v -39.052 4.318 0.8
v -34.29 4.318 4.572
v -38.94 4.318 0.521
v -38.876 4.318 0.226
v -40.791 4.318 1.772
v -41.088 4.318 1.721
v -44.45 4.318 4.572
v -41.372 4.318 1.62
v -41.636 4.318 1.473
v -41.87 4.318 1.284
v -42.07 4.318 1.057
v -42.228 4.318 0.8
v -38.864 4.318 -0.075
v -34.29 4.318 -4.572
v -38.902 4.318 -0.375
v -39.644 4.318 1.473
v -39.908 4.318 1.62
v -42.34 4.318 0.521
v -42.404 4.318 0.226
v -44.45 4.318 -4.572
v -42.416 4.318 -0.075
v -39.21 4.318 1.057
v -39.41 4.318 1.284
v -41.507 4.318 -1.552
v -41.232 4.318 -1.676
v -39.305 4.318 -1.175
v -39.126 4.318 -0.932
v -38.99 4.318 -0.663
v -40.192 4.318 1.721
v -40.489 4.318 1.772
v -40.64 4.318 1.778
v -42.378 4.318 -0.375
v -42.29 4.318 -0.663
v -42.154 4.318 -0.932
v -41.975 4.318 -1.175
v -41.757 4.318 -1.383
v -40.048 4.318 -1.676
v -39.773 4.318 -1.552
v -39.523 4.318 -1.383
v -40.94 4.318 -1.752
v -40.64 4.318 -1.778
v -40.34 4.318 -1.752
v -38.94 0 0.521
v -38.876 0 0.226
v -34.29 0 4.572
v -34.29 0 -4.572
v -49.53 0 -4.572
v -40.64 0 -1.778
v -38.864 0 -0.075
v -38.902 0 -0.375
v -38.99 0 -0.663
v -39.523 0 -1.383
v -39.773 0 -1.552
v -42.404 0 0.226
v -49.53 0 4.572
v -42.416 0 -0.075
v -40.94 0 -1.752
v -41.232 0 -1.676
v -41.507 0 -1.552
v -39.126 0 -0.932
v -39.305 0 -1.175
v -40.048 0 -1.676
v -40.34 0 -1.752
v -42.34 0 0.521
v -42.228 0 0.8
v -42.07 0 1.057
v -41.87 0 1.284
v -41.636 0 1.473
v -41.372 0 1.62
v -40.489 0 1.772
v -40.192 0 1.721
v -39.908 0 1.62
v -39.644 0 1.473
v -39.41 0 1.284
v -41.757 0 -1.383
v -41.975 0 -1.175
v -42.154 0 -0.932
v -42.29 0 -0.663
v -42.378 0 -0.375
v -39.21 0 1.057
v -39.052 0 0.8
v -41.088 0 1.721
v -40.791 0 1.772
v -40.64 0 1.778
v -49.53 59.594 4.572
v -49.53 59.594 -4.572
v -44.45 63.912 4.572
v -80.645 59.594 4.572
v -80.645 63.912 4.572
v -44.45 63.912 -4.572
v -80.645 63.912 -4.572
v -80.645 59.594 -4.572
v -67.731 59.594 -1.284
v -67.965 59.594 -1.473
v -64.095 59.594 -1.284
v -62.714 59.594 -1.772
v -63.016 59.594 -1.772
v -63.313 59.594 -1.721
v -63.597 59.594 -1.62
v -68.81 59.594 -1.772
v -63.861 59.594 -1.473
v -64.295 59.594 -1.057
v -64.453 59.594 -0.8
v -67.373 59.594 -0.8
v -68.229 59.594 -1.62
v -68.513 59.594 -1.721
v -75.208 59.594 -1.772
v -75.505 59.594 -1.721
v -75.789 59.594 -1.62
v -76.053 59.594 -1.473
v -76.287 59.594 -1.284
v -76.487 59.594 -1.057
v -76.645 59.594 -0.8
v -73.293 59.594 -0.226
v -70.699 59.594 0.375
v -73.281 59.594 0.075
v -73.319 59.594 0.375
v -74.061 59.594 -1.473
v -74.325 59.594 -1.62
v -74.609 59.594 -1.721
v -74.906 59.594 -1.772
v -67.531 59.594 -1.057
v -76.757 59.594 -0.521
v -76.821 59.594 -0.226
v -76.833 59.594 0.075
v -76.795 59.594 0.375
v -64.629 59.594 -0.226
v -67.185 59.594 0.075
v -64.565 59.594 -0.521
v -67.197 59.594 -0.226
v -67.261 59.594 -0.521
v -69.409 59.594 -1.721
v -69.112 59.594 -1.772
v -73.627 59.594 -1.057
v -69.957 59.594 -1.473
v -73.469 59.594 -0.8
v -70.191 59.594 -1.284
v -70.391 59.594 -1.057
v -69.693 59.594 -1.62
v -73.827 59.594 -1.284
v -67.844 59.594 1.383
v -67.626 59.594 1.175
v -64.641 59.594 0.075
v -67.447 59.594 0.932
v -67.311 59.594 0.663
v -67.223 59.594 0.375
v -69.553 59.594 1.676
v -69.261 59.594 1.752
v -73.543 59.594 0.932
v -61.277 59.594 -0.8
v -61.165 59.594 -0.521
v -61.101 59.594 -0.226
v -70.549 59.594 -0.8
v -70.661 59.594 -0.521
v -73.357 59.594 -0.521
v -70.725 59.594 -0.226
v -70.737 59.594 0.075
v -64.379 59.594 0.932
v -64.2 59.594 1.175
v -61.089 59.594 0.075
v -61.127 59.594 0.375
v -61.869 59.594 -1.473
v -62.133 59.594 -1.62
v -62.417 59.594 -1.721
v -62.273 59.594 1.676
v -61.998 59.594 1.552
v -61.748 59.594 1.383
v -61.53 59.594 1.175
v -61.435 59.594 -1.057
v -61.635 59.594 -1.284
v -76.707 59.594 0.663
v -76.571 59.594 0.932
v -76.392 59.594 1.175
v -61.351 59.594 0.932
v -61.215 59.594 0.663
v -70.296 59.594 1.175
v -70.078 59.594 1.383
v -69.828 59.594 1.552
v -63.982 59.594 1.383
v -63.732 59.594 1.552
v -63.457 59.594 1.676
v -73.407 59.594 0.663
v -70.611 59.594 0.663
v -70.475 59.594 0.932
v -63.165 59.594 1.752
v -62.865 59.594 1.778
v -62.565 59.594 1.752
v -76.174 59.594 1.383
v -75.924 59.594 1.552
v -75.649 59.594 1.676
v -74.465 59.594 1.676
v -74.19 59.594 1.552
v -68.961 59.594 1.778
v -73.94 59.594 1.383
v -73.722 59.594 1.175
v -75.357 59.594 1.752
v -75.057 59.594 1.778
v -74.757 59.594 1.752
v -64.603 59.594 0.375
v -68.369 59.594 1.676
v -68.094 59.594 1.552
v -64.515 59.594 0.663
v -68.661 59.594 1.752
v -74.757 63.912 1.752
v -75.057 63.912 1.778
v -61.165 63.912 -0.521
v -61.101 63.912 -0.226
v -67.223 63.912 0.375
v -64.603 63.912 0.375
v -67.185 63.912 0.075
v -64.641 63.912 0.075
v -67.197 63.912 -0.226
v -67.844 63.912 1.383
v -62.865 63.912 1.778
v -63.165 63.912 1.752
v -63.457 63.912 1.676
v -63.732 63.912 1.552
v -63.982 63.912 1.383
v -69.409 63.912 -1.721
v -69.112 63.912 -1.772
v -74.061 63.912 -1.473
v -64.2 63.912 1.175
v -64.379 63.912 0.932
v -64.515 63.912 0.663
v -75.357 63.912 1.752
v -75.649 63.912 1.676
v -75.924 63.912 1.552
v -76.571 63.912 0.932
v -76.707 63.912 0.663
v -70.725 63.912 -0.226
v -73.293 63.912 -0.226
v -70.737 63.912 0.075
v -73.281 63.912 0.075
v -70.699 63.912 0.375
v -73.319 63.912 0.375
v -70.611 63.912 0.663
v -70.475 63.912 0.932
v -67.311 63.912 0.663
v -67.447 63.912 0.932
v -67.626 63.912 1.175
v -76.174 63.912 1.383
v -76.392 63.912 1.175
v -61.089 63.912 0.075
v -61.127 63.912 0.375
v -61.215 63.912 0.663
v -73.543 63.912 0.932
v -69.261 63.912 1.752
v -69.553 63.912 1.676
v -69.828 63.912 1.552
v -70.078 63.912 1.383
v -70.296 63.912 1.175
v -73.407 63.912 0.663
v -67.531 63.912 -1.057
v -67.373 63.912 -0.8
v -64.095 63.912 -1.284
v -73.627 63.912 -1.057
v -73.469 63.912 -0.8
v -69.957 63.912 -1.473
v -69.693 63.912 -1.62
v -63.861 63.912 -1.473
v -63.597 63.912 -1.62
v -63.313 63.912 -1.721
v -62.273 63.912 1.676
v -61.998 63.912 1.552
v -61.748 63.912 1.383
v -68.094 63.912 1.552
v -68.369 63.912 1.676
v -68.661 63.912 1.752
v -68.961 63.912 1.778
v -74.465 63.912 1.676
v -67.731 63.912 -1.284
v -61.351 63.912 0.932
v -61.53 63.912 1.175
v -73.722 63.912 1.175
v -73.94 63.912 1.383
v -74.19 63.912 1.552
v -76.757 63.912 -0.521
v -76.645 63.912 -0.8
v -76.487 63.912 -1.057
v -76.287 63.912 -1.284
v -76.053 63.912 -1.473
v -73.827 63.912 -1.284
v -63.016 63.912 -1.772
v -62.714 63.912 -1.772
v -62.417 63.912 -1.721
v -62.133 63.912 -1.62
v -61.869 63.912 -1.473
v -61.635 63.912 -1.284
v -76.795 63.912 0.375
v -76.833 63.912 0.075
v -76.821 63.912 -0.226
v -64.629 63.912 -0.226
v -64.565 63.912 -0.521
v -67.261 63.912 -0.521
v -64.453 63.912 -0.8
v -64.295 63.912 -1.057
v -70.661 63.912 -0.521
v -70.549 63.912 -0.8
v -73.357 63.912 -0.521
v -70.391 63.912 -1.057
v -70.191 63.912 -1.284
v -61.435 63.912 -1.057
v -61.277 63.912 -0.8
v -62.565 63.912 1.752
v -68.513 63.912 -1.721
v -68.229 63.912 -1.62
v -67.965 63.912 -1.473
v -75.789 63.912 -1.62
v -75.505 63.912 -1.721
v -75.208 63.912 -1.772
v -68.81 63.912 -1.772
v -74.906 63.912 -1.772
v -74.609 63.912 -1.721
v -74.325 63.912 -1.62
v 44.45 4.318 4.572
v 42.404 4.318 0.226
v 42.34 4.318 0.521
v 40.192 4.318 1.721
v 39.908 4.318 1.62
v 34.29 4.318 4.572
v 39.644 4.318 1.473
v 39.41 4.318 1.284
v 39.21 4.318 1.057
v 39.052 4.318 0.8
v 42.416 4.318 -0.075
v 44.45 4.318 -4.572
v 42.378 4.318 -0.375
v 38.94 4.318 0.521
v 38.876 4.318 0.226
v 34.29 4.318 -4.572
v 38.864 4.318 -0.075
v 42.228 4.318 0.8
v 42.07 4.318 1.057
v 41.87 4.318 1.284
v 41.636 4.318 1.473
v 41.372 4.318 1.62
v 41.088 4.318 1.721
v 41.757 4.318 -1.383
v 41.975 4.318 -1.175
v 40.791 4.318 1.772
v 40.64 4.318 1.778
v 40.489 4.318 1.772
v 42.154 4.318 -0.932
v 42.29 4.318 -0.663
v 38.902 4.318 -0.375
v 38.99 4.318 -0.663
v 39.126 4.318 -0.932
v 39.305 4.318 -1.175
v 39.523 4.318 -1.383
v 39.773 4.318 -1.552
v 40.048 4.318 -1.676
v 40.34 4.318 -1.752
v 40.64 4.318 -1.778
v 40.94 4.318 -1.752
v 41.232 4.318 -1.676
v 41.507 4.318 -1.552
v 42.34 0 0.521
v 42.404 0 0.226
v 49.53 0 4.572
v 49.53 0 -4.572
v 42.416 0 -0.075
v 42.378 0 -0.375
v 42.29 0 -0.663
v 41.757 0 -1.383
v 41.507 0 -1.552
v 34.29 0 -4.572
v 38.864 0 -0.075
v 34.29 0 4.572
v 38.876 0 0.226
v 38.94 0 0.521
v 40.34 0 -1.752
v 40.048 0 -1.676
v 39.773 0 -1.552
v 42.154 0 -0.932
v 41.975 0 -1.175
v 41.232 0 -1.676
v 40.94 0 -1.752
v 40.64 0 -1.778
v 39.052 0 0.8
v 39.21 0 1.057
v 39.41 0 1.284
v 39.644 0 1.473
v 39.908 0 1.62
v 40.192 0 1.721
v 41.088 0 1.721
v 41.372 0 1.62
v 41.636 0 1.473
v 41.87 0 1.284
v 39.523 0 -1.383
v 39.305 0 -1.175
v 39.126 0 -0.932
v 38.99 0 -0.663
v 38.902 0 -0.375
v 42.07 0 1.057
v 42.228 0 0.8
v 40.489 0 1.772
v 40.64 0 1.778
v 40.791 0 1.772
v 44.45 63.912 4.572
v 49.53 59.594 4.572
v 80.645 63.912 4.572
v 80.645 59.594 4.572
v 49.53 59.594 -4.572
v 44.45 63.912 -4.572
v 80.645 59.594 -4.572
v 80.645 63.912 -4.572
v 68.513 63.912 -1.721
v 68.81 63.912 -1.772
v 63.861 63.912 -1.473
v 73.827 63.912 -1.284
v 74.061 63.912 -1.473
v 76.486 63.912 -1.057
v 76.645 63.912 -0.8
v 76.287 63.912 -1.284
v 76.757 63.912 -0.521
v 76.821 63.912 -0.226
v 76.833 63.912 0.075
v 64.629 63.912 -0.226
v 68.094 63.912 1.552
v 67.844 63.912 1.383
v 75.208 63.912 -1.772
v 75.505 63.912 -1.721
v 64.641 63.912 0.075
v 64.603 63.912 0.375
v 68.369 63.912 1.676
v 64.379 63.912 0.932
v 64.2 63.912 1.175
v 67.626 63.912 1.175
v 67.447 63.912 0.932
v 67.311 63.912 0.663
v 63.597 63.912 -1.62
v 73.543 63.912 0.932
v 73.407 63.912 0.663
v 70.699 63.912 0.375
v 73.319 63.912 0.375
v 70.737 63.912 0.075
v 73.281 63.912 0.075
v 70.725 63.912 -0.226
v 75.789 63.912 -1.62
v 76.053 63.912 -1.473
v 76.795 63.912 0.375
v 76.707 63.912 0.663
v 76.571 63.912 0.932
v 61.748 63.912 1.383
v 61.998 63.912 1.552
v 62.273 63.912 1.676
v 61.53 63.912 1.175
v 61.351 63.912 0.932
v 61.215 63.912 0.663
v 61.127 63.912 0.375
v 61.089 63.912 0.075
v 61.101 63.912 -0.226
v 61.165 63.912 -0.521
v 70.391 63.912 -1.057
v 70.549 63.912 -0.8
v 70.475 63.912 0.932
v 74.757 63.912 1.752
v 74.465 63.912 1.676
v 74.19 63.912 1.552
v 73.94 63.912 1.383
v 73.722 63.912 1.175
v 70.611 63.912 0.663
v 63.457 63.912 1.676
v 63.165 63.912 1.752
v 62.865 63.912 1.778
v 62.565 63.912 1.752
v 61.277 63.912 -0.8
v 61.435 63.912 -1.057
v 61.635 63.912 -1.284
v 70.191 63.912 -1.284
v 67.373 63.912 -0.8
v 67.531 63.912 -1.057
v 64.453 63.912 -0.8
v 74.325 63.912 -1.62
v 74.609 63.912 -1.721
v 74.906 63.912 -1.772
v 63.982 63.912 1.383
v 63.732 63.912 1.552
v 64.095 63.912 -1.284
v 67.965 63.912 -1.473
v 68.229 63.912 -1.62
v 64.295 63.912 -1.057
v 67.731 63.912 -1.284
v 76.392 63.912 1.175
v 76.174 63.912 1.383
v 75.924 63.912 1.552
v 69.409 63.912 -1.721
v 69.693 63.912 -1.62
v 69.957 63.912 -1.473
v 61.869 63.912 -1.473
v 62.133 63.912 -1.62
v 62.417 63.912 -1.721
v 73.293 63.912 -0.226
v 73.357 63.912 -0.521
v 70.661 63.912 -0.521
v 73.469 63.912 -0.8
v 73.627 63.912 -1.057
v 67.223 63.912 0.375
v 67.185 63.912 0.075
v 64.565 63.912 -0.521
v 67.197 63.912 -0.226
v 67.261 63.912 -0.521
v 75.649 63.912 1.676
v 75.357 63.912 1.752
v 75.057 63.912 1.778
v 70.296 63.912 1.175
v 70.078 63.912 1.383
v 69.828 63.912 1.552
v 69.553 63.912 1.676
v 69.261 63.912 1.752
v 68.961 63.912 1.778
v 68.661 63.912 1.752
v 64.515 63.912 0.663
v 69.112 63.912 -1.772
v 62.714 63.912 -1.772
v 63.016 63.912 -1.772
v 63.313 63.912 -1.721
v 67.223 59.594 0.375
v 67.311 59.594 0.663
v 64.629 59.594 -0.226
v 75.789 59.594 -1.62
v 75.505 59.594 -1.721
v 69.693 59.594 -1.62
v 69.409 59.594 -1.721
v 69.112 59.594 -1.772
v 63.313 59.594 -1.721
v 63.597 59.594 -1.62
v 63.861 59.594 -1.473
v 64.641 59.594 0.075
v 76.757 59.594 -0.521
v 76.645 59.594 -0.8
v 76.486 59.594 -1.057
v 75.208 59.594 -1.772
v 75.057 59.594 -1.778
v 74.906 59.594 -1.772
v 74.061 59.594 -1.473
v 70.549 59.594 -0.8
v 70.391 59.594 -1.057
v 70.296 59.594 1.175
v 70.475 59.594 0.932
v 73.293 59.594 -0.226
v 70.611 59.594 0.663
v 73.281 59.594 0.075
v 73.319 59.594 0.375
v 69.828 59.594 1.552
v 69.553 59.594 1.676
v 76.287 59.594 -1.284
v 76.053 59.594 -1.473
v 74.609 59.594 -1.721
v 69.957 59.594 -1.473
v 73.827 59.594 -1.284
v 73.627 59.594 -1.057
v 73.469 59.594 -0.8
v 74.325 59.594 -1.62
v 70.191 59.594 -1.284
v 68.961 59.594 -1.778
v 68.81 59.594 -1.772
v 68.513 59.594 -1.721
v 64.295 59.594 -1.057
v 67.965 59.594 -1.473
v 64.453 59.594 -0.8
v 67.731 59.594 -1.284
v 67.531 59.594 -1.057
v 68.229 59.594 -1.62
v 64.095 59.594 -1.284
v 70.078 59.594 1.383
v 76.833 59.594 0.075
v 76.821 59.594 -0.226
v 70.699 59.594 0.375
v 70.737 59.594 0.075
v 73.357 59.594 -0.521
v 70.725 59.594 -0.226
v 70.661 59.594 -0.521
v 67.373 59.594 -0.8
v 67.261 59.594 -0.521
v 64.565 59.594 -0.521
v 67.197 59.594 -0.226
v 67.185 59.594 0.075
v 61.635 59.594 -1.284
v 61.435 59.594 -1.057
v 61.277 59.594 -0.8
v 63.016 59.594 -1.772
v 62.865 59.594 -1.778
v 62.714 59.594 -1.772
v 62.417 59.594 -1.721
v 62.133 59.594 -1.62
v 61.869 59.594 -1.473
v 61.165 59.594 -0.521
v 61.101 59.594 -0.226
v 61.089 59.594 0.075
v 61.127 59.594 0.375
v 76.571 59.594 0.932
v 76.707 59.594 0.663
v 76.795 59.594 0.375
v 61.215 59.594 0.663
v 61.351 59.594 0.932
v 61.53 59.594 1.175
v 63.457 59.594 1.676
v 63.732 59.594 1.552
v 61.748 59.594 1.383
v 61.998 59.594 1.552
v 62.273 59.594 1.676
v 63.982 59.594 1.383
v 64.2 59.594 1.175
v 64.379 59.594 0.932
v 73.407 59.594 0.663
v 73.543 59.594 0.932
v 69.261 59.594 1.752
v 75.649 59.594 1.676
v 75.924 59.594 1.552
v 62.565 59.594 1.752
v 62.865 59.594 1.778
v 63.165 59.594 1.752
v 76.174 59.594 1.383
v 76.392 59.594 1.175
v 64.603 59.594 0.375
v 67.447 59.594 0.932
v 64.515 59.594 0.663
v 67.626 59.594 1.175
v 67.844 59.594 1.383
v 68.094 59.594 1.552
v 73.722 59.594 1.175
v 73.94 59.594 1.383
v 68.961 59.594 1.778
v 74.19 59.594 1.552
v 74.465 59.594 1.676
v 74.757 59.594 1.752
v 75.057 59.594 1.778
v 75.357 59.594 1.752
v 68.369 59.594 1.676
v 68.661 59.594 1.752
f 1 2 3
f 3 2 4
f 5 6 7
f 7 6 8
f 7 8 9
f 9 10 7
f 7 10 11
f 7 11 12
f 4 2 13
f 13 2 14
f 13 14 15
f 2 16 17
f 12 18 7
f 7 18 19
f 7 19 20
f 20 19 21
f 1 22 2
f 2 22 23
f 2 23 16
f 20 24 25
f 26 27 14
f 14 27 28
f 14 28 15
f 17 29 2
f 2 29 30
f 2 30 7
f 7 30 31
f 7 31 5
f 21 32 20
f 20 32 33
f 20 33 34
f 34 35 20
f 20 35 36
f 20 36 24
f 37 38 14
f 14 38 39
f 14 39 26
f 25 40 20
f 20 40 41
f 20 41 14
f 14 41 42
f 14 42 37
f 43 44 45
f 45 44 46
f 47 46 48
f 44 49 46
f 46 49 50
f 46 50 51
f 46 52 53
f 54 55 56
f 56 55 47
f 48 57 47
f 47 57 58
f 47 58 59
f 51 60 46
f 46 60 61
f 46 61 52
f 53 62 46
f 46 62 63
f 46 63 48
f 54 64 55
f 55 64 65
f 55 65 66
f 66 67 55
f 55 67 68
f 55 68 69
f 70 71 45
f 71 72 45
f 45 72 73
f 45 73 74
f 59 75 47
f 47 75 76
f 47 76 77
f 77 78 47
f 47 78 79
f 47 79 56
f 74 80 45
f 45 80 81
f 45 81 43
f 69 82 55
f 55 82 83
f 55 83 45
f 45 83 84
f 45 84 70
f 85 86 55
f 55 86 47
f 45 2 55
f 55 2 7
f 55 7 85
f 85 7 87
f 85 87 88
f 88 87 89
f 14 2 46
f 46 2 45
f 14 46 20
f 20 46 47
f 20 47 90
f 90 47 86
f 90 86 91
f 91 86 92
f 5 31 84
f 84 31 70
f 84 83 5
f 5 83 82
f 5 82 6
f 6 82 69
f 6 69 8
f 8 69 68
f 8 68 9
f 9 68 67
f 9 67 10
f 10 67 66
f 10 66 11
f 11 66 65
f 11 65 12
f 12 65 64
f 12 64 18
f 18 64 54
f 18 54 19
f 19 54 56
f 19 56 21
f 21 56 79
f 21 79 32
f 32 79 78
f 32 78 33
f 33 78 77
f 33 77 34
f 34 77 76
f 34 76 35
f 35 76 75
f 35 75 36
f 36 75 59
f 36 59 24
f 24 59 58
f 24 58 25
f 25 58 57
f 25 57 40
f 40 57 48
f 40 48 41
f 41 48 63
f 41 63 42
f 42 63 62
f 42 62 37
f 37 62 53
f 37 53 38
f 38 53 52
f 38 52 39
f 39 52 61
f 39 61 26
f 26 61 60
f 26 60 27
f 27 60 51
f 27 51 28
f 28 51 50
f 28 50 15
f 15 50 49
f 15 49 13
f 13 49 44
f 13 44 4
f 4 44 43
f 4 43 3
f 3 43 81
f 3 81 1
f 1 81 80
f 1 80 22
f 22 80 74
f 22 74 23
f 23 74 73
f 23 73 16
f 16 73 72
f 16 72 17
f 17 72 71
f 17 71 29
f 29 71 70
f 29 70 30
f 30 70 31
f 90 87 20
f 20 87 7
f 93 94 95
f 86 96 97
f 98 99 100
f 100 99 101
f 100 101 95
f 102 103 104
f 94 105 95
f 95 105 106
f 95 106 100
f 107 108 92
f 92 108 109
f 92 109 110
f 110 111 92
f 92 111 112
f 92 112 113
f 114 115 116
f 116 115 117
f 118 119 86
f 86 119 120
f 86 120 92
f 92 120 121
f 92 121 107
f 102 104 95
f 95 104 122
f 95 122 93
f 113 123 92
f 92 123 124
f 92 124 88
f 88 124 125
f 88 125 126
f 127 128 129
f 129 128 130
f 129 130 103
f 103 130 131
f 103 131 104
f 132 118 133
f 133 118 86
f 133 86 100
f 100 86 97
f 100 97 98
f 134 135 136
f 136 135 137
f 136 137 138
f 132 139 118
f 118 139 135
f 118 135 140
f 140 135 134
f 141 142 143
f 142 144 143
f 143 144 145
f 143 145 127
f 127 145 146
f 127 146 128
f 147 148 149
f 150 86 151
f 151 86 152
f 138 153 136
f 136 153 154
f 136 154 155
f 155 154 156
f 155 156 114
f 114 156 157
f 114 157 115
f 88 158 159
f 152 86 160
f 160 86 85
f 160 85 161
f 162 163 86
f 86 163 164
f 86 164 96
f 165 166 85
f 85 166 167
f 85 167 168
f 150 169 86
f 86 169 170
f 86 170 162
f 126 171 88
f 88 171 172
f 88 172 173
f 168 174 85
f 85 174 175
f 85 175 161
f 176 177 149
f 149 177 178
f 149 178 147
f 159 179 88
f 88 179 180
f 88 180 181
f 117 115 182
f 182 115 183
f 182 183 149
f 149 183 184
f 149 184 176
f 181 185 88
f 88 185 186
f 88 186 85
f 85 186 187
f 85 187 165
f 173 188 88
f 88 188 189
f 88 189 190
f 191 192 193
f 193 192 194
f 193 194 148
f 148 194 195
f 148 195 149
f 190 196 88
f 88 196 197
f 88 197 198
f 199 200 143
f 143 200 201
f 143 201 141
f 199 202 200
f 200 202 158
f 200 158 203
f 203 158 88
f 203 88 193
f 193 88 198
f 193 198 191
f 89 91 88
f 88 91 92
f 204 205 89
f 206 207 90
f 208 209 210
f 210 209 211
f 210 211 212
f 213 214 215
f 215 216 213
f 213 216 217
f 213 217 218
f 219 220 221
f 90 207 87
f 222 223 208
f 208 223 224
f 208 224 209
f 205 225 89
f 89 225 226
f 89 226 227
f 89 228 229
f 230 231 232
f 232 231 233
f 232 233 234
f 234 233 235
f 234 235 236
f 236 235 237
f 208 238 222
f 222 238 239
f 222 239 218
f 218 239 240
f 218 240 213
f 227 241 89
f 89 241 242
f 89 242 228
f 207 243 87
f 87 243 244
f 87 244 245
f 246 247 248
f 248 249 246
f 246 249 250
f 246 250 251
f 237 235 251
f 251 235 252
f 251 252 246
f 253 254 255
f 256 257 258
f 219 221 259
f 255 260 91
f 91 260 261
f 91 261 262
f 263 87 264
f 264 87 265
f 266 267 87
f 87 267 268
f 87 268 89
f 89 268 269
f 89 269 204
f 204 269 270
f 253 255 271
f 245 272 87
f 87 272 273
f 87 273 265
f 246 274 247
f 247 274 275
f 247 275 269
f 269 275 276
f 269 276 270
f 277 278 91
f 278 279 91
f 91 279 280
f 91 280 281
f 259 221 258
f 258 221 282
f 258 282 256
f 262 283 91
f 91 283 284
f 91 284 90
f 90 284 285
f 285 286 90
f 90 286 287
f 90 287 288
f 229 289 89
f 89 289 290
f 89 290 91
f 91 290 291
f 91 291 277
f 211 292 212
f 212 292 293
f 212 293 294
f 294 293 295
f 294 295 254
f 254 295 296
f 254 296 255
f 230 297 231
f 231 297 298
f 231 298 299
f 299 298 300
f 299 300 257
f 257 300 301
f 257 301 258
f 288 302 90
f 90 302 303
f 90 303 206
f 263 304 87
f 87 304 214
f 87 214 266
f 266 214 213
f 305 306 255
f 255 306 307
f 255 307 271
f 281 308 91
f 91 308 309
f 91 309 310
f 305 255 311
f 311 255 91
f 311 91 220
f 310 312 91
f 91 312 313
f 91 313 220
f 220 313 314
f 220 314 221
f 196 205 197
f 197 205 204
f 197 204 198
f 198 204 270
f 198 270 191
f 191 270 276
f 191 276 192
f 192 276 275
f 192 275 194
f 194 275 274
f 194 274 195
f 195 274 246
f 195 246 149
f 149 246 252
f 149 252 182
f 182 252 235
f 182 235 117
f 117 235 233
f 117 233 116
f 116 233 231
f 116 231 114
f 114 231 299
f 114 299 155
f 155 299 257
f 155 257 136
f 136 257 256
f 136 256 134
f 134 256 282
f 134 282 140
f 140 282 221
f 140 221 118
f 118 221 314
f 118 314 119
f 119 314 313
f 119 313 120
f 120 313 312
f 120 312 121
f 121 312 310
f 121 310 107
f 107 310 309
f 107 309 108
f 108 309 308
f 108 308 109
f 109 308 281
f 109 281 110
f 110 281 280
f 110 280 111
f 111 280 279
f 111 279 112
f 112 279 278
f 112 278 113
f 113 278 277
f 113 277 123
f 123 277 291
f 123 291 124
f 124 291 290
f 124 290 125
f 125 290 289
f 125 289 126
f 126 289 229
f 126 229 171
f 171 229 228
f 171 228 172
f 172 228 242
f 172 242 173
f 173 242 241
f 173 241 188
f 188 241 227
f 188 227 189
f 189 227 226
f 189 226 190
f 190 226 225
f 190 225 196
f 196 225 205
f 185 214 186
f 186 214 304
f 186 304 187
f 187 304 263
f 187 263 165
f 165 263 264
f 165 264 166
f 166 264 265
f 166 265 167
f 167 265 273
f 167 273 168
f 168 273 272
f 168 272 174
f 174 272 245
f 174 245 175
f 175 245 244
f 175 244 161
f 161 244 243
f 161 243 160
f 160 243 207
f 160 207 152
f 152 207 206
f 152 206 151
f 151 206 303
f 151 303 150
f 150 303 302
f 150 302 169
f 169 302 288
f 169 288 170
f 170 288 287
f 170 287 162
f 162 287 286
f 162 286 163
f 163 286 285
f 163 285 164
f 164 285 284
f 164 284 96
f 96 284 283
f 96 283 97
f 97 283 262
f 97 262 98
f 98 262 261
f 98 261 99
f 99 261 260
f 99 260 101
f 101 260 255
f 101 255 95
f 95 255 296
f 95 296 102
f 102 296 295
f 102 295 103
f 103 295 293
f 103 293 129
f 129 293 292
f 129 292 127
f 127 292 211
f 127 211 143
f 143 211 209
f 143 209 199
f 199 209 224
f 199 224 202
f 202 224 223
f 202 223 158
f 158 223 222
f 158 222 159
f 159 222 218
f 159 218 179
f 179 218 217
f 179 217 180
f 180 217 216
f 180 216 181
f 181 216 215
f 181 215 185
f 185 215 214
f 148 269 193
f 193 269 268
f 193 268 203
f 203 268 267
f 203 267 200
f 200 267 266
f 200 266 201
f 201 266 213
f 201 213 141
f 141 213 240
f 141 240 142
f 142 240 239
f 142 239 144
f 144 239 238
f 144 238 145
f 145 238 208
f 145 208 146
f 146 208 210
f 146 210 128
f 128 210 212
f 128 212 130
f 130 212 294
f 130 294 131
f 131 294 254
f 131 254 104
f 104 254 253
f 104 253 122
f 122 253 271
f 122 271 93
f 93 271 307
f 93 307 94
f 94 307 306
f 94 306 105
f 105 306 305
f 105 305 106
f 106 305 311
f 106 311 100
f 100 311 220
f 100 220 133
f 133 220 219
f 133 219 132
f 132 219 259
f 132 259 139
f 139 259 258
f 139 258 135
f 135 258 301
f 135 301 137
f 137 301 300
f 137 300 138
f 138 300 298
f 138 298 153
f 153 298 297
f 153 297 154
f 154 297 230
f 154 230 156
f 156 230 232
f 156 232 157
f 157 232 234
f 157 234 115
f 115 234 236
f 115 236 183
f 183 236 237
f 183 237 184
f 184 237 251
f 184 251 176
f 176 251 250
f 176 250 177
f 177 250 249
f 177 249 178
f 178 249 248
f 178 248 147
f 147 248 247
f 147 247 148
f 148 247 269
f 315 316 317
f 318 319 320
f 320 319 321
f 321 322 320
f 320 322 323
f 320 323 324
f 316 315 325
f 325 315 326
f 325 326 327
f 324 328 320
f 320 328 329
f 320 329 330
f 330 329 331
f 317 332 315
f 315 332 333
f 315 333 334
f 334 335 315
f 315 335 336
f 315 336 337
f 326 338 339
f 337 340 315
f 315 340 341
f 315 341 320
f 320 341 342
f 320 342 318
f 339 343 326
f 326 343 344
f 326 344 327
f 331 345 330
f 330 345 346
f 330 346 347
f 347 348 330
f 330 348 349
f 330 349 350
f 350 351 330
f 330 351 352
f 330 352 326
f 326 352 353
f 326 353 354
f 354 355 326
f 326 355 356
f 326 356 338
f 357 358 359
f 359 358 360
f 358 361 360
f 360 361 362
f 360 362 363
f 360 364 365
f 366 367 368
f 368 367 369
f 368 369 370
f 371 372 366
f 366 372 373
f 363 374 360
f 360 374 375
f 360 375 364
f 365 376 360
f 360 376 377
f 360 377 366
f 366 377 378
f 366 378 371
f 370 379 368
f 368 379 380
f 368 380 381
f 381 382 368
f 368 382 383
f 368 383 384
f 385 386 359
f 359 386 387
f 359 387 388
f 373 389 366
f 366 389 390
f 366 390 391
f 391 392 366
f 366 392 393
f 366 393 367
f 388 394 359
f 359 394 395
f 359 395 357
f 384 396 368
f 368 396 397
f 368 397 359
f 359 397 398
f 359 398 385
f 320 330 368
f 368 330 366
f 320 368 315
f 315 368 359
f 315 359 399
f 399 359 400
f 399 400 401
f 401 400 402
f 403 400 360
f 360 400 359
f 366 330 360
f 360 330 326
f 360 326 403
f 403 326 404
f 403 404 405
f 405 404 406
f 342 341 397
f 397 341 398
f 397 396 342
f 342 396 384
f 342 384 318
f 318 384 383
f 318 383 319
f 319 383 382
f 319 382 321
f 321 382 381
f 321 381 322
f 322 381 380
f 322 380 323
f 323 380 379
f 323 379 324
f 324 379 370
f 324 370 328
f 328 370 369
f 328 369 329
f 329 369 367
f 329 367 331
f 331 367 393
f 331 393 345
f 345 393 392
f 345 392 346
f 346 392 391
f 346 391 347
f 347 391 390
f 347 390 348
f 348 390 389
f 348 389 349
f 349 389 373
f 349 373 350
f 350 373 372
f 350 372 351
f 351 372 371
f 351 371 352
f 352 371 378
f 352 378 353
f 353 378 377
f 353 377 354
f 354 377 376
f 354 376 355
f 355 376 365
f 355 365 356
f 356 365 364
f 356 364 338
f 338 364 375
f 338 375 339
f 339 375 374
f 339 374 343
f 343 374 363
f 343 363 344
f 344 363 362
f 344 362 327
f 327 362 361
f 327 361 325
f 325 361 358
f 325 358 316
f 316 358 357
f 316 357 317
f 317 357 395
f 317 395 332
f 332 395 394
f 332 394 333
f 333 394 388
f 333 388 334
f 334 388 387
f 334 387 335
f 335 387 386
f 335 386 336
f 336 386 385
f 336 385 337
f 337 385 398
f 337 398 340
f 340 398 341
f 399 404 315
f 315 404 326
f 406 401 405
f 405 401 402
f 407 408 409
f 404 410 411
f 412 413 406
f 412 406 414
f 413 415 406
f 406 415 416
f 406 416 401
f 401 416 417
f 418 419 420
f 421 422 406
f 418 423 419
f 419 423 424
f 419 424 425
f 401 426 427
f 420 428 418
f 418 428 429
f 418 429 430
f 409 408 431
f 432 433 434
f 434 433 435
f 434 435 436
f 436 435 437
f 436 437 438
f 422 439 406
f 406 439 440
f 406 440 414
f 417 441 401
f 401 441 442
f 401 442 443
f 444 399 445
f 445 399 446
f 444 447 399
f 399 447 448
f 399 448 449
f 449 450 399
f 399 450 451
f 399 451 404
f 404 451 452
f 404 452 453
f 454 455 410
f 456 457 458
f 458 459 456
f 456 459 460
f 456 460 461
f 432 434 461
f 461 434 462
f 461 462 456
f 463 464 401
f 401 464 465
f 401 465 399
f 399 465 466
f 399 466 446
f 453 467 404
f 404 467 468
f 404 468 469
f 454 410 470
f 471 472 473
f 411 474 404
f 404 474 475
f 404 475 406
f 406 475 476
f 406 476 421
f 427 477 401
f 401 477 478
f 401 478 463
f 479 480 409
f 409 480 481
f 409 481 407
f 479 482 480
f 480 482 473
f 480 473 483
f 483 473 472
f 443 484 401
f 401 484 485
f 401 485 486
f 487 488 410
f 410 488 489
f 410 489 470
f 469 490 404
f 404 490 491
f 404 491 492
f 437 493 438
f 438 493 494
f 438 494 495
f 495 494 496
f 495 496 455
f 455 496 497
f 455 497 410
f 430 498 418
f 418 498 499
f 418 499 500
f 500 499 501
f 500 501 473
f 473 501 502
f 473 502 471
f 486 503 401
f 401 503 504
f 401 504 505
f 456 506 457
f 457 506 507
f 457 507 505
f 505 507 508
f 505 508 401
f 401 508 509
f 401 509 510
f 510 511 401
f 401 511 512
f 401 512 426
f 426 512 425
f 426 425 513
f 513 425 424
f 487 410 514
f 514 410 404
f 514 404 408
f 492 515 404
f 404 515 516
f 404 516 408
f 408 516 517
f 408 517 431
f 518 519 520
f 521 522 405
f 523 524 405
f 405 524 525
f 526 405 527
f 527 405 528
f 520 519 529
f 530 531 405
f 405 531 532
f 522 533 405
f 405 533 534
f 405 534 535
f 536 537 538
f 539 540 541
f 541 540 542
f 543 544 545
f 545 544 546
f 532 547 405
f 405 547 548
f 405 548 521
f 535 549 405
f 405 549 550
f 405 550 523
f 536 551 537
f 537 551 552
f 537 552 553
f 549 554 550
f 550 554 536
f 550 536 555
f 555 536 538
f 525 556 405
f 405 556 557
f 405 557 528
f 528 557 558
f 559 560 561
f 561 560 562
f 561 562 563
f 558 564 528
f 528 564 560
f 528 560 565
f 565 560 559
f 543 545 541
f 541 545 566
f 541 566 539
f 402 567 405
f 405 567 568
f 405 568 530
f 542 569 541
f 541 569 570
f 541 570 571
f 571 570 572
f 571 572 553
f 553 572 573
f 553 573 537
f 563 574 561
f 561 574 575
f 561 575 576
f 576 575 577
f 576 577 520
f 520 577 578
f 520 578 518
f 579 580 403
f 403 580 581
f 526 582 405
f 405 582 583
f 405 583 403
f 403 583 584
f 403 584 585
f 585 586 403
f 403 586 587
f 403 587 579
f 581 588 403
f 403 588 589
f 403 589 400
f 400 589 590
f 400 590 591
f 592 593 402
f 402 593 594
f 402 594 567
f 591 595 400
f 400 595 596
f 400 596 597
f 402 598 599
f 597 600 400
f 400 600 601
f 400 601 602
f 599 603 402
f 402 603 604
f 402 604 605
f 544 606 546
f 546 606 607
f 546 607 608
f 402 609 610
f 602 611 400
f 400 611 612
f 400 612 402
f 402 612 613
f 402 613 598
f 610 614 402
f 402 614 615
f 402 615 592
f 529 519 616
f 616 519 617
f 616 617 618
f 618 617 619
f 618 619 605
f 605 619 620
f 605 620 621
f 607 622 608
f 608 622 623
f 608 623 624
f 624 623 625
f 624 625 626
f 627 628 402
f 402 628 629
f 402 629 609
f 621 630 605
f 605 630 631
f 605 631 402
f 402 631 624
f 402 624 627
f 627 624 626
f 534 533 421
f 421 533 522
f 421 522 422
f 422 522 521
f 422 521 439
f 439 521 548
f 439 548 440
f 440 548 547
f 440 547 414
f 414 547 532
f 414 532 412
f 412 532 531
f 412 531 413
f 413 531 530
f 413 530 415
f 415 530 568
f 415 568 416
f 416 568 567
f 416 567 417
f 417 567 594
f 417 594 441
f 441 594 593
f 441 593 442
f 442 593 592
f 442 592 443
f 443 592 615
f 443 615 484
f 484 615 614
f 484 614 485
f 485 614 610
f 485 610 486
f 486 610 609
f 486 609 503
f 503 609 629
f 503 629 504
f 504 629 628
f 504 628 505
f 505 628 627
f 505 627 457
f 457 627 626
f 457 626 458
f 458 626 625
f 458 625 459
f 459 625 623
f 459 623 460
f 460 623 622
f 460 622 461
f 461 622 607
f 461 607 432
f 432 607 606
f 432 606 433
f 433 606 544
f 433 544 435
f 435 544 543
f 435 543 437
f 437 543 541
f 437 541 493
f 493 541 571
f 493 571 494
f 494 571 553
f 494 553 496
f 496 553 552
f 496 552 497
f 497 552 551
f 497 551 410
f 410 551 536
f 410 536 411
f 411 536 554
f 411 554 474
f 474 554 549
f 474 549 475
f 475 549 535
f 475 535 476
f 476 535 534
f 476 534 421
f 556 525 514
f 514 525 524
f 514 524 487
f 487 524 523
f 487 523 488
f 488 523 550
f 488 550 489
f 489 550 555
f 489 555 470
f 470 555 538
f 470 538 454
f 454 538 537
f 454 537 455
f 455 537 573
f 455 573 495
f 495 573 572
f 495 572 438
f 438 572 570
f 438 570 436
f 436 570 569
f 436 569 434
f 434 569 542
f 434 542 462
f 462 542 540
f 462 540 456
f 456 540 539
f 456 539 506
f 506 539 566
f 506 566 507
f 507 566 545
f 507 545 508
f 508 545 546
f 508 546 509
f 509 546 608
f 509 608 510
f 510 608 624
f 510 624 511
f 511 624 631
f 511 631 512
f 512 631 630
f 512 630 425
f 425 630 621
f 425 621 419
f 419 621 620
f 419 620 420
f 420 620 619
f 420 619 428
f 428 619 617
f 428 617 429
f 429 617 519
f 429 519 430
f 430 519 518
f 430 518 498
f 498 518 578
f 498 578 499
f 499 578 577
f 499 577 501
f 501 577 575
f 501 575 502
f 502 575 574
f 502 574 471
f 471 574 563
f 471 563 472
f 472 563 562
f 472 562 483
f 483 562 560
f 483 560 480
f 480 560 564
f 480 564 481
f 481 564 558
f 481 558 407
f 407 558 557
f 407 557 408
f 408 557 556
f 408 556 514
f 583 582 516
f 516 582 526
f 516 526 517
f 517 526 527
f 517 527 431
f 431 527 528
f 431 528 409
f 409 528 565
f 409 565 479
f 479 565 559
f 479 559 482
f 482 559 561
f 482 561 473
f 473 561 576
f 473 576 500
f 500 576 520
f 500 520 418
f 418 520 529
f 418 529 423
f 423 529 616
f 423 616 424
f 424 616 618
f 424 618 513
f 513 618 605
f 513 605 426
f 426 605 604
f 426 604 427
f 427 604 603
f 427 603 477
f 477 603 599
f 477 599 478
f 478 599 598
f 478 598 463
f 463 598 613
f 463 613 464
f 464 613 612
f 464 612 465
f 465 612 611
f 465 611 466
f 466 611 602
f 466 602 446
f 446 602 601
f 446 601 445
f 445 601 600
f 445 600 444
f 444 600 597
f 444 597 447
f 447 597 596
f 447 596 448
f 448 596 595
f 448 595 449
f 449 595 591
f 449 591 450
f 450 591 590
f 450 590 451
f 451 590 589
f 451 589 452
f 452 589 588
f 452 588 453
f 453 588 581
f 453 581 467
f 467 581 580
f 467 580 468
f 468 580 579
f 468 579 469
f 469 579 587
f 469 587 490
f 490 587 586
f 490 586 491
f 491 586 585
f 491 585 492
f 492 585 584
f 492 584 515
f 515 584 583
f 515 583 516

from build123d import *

# Parameters (mm, degrees)
SKETCH1_W             = 15.24
SKETCH1_H             = 9.144
SKETCH1_R             = 1.778
BOSS_EXTRUDE1_DEPTH   = 4.318
BOSS_EXTRUDE1_2_DEPTH = 4.318
SKETCH2_W             = 5.08
SKETCH2_H             = 9.144
BOSS_EXTRUDE2_DEPTH   = 55.276
SKETCH3_W             = 36.195
SKETCH3_H             = 9.144
BOSS_EXTRUDE3_DEPTH   = 4.318
SKETCH4_R             = 1.778
CUT_EXTRUDE1_DEPTH    = 104.001276463
SKETCH5_R             = 1.778
CUT_EXTRUDE2_DEPTH    = 104.001276463


with BuildPart() as part:
    # Sketch1 → Boss-Extrude1 (new body)
    with BuildSketch(Plane(origin=(0, 0, 0), x_dir=(1, 0, 0), z_dir=(0, 1, 0))):
        with Locations((-41.91, 0)):
            Rectangle(SKETCH1_W, SKETCH1_H)
        with Locations(Location((-40.64, 0, 0), (0, 0, 270))):
            Circle(SKETCH1_R, mode=Mode.SUBTRACT)
    extrude(amount=BOSS_EXTRUDE1_DEPTH)



with BuildPart() as body_2:
    # Sketch1 → Boss-Extrude1 2 (new body)
    with BuildSketch(Plane(origin=(0, 0, 0), x_dir=(1, 0, 0), z_dir=(0, 1, 0))):
        with Locations((41.91, 0)):
            Rectangle(SKETCH1_W, SKETCH1_H)
        with Locations(Location((40.64, 0, 0), (0, 0, 270))):
            Circle(SKETCH1_R, mode=Mode.SUBTRACT)
    extrude(amount=BOSS_EXTRUDE1_2_DEPTH)


with BuildPart() as part_1:
    add(part.part)

    add(body_2.part)  # Boss-Extrude2 merges body 2
    # Sketch2 → Boss-Extrude2 (add)
    with BuildSketch(Plane(origin=(0, 4.318, 0), x_dir=(1, 0, 0), z_dir=(0, 1, 0))):
        with Locations((-46.99, 0)):
            Rectangle(SKETCH2_W, SKETCH2_H)
        with Locations((46.99, 0)):
            Rectangle(SKETCH2_W, SKETCH2_H)
    extrude(amount=BOSS_EXTRUDE2_DEPTH)

    # Sketch3 → Boss-Extrude3 (add)
    with BuildSketch(Plane(origin=(0, 59.594, 0), x_dir=(1, 0, 0), z_dir=(0, 1, 0))):
        with Locations((-62.5475, 0)):
            Rectangle(SKETCH3_W, SKETCH3_H)
        with Locations((62.5475, 0)):
            Rectangle(SKETCH3_W, SKETCH3_H)
    extrude(amount=BOSS_EXTRUDE3_DEPTH)

    # Sketch4 → Cut-Extrude1 (cut, through all)
    with BuildSketch(Plane(origin=(0, 63.912, 0), x_dir=(1, 0, 0), z_dir=(0, 1, 0))):
        with Locations(Location((-75.057, 0, 0), (0, 0, 270))):
            Circle(SKETCH4_R)
        with Locations(Location((75.057, 0, 0), (0, 0, 270))):
            Circle(SKETCH4_R)
    extrude(amount=-CUT_EXTRUDE1_DEPTH, mode=Mode.SUBTRACT)

    # Sketch5 → Cut-Extrude2 (cut, through all)
    with BuildSketch(Plane(origin=(0, 63.912, 0), x_dir=(1, 0, 0), z_dir=(0, 1, 0))):
        with Locations(Location((-68.961, 0, 0), (0, 0, 270))):
            Circle(SKETCH5_R)
        with Locations(Location((-62.865, 0, 0), (0, 0, 270))):
            Circle(SKETCH5_R)
        with Locations(Location((62.865, 0, 0), (0, 0, 270))):
            Circle(SKETCH5_R)
        with Locations(Location((68.961, 0, 0), (0, 0, 270))):
            Circle(SKETCH5_R)
    extrude(amount=-CUT_EXTRUDE2_DEPTH, mode=Mode.SUBTRACT)


solid = part_1.part
